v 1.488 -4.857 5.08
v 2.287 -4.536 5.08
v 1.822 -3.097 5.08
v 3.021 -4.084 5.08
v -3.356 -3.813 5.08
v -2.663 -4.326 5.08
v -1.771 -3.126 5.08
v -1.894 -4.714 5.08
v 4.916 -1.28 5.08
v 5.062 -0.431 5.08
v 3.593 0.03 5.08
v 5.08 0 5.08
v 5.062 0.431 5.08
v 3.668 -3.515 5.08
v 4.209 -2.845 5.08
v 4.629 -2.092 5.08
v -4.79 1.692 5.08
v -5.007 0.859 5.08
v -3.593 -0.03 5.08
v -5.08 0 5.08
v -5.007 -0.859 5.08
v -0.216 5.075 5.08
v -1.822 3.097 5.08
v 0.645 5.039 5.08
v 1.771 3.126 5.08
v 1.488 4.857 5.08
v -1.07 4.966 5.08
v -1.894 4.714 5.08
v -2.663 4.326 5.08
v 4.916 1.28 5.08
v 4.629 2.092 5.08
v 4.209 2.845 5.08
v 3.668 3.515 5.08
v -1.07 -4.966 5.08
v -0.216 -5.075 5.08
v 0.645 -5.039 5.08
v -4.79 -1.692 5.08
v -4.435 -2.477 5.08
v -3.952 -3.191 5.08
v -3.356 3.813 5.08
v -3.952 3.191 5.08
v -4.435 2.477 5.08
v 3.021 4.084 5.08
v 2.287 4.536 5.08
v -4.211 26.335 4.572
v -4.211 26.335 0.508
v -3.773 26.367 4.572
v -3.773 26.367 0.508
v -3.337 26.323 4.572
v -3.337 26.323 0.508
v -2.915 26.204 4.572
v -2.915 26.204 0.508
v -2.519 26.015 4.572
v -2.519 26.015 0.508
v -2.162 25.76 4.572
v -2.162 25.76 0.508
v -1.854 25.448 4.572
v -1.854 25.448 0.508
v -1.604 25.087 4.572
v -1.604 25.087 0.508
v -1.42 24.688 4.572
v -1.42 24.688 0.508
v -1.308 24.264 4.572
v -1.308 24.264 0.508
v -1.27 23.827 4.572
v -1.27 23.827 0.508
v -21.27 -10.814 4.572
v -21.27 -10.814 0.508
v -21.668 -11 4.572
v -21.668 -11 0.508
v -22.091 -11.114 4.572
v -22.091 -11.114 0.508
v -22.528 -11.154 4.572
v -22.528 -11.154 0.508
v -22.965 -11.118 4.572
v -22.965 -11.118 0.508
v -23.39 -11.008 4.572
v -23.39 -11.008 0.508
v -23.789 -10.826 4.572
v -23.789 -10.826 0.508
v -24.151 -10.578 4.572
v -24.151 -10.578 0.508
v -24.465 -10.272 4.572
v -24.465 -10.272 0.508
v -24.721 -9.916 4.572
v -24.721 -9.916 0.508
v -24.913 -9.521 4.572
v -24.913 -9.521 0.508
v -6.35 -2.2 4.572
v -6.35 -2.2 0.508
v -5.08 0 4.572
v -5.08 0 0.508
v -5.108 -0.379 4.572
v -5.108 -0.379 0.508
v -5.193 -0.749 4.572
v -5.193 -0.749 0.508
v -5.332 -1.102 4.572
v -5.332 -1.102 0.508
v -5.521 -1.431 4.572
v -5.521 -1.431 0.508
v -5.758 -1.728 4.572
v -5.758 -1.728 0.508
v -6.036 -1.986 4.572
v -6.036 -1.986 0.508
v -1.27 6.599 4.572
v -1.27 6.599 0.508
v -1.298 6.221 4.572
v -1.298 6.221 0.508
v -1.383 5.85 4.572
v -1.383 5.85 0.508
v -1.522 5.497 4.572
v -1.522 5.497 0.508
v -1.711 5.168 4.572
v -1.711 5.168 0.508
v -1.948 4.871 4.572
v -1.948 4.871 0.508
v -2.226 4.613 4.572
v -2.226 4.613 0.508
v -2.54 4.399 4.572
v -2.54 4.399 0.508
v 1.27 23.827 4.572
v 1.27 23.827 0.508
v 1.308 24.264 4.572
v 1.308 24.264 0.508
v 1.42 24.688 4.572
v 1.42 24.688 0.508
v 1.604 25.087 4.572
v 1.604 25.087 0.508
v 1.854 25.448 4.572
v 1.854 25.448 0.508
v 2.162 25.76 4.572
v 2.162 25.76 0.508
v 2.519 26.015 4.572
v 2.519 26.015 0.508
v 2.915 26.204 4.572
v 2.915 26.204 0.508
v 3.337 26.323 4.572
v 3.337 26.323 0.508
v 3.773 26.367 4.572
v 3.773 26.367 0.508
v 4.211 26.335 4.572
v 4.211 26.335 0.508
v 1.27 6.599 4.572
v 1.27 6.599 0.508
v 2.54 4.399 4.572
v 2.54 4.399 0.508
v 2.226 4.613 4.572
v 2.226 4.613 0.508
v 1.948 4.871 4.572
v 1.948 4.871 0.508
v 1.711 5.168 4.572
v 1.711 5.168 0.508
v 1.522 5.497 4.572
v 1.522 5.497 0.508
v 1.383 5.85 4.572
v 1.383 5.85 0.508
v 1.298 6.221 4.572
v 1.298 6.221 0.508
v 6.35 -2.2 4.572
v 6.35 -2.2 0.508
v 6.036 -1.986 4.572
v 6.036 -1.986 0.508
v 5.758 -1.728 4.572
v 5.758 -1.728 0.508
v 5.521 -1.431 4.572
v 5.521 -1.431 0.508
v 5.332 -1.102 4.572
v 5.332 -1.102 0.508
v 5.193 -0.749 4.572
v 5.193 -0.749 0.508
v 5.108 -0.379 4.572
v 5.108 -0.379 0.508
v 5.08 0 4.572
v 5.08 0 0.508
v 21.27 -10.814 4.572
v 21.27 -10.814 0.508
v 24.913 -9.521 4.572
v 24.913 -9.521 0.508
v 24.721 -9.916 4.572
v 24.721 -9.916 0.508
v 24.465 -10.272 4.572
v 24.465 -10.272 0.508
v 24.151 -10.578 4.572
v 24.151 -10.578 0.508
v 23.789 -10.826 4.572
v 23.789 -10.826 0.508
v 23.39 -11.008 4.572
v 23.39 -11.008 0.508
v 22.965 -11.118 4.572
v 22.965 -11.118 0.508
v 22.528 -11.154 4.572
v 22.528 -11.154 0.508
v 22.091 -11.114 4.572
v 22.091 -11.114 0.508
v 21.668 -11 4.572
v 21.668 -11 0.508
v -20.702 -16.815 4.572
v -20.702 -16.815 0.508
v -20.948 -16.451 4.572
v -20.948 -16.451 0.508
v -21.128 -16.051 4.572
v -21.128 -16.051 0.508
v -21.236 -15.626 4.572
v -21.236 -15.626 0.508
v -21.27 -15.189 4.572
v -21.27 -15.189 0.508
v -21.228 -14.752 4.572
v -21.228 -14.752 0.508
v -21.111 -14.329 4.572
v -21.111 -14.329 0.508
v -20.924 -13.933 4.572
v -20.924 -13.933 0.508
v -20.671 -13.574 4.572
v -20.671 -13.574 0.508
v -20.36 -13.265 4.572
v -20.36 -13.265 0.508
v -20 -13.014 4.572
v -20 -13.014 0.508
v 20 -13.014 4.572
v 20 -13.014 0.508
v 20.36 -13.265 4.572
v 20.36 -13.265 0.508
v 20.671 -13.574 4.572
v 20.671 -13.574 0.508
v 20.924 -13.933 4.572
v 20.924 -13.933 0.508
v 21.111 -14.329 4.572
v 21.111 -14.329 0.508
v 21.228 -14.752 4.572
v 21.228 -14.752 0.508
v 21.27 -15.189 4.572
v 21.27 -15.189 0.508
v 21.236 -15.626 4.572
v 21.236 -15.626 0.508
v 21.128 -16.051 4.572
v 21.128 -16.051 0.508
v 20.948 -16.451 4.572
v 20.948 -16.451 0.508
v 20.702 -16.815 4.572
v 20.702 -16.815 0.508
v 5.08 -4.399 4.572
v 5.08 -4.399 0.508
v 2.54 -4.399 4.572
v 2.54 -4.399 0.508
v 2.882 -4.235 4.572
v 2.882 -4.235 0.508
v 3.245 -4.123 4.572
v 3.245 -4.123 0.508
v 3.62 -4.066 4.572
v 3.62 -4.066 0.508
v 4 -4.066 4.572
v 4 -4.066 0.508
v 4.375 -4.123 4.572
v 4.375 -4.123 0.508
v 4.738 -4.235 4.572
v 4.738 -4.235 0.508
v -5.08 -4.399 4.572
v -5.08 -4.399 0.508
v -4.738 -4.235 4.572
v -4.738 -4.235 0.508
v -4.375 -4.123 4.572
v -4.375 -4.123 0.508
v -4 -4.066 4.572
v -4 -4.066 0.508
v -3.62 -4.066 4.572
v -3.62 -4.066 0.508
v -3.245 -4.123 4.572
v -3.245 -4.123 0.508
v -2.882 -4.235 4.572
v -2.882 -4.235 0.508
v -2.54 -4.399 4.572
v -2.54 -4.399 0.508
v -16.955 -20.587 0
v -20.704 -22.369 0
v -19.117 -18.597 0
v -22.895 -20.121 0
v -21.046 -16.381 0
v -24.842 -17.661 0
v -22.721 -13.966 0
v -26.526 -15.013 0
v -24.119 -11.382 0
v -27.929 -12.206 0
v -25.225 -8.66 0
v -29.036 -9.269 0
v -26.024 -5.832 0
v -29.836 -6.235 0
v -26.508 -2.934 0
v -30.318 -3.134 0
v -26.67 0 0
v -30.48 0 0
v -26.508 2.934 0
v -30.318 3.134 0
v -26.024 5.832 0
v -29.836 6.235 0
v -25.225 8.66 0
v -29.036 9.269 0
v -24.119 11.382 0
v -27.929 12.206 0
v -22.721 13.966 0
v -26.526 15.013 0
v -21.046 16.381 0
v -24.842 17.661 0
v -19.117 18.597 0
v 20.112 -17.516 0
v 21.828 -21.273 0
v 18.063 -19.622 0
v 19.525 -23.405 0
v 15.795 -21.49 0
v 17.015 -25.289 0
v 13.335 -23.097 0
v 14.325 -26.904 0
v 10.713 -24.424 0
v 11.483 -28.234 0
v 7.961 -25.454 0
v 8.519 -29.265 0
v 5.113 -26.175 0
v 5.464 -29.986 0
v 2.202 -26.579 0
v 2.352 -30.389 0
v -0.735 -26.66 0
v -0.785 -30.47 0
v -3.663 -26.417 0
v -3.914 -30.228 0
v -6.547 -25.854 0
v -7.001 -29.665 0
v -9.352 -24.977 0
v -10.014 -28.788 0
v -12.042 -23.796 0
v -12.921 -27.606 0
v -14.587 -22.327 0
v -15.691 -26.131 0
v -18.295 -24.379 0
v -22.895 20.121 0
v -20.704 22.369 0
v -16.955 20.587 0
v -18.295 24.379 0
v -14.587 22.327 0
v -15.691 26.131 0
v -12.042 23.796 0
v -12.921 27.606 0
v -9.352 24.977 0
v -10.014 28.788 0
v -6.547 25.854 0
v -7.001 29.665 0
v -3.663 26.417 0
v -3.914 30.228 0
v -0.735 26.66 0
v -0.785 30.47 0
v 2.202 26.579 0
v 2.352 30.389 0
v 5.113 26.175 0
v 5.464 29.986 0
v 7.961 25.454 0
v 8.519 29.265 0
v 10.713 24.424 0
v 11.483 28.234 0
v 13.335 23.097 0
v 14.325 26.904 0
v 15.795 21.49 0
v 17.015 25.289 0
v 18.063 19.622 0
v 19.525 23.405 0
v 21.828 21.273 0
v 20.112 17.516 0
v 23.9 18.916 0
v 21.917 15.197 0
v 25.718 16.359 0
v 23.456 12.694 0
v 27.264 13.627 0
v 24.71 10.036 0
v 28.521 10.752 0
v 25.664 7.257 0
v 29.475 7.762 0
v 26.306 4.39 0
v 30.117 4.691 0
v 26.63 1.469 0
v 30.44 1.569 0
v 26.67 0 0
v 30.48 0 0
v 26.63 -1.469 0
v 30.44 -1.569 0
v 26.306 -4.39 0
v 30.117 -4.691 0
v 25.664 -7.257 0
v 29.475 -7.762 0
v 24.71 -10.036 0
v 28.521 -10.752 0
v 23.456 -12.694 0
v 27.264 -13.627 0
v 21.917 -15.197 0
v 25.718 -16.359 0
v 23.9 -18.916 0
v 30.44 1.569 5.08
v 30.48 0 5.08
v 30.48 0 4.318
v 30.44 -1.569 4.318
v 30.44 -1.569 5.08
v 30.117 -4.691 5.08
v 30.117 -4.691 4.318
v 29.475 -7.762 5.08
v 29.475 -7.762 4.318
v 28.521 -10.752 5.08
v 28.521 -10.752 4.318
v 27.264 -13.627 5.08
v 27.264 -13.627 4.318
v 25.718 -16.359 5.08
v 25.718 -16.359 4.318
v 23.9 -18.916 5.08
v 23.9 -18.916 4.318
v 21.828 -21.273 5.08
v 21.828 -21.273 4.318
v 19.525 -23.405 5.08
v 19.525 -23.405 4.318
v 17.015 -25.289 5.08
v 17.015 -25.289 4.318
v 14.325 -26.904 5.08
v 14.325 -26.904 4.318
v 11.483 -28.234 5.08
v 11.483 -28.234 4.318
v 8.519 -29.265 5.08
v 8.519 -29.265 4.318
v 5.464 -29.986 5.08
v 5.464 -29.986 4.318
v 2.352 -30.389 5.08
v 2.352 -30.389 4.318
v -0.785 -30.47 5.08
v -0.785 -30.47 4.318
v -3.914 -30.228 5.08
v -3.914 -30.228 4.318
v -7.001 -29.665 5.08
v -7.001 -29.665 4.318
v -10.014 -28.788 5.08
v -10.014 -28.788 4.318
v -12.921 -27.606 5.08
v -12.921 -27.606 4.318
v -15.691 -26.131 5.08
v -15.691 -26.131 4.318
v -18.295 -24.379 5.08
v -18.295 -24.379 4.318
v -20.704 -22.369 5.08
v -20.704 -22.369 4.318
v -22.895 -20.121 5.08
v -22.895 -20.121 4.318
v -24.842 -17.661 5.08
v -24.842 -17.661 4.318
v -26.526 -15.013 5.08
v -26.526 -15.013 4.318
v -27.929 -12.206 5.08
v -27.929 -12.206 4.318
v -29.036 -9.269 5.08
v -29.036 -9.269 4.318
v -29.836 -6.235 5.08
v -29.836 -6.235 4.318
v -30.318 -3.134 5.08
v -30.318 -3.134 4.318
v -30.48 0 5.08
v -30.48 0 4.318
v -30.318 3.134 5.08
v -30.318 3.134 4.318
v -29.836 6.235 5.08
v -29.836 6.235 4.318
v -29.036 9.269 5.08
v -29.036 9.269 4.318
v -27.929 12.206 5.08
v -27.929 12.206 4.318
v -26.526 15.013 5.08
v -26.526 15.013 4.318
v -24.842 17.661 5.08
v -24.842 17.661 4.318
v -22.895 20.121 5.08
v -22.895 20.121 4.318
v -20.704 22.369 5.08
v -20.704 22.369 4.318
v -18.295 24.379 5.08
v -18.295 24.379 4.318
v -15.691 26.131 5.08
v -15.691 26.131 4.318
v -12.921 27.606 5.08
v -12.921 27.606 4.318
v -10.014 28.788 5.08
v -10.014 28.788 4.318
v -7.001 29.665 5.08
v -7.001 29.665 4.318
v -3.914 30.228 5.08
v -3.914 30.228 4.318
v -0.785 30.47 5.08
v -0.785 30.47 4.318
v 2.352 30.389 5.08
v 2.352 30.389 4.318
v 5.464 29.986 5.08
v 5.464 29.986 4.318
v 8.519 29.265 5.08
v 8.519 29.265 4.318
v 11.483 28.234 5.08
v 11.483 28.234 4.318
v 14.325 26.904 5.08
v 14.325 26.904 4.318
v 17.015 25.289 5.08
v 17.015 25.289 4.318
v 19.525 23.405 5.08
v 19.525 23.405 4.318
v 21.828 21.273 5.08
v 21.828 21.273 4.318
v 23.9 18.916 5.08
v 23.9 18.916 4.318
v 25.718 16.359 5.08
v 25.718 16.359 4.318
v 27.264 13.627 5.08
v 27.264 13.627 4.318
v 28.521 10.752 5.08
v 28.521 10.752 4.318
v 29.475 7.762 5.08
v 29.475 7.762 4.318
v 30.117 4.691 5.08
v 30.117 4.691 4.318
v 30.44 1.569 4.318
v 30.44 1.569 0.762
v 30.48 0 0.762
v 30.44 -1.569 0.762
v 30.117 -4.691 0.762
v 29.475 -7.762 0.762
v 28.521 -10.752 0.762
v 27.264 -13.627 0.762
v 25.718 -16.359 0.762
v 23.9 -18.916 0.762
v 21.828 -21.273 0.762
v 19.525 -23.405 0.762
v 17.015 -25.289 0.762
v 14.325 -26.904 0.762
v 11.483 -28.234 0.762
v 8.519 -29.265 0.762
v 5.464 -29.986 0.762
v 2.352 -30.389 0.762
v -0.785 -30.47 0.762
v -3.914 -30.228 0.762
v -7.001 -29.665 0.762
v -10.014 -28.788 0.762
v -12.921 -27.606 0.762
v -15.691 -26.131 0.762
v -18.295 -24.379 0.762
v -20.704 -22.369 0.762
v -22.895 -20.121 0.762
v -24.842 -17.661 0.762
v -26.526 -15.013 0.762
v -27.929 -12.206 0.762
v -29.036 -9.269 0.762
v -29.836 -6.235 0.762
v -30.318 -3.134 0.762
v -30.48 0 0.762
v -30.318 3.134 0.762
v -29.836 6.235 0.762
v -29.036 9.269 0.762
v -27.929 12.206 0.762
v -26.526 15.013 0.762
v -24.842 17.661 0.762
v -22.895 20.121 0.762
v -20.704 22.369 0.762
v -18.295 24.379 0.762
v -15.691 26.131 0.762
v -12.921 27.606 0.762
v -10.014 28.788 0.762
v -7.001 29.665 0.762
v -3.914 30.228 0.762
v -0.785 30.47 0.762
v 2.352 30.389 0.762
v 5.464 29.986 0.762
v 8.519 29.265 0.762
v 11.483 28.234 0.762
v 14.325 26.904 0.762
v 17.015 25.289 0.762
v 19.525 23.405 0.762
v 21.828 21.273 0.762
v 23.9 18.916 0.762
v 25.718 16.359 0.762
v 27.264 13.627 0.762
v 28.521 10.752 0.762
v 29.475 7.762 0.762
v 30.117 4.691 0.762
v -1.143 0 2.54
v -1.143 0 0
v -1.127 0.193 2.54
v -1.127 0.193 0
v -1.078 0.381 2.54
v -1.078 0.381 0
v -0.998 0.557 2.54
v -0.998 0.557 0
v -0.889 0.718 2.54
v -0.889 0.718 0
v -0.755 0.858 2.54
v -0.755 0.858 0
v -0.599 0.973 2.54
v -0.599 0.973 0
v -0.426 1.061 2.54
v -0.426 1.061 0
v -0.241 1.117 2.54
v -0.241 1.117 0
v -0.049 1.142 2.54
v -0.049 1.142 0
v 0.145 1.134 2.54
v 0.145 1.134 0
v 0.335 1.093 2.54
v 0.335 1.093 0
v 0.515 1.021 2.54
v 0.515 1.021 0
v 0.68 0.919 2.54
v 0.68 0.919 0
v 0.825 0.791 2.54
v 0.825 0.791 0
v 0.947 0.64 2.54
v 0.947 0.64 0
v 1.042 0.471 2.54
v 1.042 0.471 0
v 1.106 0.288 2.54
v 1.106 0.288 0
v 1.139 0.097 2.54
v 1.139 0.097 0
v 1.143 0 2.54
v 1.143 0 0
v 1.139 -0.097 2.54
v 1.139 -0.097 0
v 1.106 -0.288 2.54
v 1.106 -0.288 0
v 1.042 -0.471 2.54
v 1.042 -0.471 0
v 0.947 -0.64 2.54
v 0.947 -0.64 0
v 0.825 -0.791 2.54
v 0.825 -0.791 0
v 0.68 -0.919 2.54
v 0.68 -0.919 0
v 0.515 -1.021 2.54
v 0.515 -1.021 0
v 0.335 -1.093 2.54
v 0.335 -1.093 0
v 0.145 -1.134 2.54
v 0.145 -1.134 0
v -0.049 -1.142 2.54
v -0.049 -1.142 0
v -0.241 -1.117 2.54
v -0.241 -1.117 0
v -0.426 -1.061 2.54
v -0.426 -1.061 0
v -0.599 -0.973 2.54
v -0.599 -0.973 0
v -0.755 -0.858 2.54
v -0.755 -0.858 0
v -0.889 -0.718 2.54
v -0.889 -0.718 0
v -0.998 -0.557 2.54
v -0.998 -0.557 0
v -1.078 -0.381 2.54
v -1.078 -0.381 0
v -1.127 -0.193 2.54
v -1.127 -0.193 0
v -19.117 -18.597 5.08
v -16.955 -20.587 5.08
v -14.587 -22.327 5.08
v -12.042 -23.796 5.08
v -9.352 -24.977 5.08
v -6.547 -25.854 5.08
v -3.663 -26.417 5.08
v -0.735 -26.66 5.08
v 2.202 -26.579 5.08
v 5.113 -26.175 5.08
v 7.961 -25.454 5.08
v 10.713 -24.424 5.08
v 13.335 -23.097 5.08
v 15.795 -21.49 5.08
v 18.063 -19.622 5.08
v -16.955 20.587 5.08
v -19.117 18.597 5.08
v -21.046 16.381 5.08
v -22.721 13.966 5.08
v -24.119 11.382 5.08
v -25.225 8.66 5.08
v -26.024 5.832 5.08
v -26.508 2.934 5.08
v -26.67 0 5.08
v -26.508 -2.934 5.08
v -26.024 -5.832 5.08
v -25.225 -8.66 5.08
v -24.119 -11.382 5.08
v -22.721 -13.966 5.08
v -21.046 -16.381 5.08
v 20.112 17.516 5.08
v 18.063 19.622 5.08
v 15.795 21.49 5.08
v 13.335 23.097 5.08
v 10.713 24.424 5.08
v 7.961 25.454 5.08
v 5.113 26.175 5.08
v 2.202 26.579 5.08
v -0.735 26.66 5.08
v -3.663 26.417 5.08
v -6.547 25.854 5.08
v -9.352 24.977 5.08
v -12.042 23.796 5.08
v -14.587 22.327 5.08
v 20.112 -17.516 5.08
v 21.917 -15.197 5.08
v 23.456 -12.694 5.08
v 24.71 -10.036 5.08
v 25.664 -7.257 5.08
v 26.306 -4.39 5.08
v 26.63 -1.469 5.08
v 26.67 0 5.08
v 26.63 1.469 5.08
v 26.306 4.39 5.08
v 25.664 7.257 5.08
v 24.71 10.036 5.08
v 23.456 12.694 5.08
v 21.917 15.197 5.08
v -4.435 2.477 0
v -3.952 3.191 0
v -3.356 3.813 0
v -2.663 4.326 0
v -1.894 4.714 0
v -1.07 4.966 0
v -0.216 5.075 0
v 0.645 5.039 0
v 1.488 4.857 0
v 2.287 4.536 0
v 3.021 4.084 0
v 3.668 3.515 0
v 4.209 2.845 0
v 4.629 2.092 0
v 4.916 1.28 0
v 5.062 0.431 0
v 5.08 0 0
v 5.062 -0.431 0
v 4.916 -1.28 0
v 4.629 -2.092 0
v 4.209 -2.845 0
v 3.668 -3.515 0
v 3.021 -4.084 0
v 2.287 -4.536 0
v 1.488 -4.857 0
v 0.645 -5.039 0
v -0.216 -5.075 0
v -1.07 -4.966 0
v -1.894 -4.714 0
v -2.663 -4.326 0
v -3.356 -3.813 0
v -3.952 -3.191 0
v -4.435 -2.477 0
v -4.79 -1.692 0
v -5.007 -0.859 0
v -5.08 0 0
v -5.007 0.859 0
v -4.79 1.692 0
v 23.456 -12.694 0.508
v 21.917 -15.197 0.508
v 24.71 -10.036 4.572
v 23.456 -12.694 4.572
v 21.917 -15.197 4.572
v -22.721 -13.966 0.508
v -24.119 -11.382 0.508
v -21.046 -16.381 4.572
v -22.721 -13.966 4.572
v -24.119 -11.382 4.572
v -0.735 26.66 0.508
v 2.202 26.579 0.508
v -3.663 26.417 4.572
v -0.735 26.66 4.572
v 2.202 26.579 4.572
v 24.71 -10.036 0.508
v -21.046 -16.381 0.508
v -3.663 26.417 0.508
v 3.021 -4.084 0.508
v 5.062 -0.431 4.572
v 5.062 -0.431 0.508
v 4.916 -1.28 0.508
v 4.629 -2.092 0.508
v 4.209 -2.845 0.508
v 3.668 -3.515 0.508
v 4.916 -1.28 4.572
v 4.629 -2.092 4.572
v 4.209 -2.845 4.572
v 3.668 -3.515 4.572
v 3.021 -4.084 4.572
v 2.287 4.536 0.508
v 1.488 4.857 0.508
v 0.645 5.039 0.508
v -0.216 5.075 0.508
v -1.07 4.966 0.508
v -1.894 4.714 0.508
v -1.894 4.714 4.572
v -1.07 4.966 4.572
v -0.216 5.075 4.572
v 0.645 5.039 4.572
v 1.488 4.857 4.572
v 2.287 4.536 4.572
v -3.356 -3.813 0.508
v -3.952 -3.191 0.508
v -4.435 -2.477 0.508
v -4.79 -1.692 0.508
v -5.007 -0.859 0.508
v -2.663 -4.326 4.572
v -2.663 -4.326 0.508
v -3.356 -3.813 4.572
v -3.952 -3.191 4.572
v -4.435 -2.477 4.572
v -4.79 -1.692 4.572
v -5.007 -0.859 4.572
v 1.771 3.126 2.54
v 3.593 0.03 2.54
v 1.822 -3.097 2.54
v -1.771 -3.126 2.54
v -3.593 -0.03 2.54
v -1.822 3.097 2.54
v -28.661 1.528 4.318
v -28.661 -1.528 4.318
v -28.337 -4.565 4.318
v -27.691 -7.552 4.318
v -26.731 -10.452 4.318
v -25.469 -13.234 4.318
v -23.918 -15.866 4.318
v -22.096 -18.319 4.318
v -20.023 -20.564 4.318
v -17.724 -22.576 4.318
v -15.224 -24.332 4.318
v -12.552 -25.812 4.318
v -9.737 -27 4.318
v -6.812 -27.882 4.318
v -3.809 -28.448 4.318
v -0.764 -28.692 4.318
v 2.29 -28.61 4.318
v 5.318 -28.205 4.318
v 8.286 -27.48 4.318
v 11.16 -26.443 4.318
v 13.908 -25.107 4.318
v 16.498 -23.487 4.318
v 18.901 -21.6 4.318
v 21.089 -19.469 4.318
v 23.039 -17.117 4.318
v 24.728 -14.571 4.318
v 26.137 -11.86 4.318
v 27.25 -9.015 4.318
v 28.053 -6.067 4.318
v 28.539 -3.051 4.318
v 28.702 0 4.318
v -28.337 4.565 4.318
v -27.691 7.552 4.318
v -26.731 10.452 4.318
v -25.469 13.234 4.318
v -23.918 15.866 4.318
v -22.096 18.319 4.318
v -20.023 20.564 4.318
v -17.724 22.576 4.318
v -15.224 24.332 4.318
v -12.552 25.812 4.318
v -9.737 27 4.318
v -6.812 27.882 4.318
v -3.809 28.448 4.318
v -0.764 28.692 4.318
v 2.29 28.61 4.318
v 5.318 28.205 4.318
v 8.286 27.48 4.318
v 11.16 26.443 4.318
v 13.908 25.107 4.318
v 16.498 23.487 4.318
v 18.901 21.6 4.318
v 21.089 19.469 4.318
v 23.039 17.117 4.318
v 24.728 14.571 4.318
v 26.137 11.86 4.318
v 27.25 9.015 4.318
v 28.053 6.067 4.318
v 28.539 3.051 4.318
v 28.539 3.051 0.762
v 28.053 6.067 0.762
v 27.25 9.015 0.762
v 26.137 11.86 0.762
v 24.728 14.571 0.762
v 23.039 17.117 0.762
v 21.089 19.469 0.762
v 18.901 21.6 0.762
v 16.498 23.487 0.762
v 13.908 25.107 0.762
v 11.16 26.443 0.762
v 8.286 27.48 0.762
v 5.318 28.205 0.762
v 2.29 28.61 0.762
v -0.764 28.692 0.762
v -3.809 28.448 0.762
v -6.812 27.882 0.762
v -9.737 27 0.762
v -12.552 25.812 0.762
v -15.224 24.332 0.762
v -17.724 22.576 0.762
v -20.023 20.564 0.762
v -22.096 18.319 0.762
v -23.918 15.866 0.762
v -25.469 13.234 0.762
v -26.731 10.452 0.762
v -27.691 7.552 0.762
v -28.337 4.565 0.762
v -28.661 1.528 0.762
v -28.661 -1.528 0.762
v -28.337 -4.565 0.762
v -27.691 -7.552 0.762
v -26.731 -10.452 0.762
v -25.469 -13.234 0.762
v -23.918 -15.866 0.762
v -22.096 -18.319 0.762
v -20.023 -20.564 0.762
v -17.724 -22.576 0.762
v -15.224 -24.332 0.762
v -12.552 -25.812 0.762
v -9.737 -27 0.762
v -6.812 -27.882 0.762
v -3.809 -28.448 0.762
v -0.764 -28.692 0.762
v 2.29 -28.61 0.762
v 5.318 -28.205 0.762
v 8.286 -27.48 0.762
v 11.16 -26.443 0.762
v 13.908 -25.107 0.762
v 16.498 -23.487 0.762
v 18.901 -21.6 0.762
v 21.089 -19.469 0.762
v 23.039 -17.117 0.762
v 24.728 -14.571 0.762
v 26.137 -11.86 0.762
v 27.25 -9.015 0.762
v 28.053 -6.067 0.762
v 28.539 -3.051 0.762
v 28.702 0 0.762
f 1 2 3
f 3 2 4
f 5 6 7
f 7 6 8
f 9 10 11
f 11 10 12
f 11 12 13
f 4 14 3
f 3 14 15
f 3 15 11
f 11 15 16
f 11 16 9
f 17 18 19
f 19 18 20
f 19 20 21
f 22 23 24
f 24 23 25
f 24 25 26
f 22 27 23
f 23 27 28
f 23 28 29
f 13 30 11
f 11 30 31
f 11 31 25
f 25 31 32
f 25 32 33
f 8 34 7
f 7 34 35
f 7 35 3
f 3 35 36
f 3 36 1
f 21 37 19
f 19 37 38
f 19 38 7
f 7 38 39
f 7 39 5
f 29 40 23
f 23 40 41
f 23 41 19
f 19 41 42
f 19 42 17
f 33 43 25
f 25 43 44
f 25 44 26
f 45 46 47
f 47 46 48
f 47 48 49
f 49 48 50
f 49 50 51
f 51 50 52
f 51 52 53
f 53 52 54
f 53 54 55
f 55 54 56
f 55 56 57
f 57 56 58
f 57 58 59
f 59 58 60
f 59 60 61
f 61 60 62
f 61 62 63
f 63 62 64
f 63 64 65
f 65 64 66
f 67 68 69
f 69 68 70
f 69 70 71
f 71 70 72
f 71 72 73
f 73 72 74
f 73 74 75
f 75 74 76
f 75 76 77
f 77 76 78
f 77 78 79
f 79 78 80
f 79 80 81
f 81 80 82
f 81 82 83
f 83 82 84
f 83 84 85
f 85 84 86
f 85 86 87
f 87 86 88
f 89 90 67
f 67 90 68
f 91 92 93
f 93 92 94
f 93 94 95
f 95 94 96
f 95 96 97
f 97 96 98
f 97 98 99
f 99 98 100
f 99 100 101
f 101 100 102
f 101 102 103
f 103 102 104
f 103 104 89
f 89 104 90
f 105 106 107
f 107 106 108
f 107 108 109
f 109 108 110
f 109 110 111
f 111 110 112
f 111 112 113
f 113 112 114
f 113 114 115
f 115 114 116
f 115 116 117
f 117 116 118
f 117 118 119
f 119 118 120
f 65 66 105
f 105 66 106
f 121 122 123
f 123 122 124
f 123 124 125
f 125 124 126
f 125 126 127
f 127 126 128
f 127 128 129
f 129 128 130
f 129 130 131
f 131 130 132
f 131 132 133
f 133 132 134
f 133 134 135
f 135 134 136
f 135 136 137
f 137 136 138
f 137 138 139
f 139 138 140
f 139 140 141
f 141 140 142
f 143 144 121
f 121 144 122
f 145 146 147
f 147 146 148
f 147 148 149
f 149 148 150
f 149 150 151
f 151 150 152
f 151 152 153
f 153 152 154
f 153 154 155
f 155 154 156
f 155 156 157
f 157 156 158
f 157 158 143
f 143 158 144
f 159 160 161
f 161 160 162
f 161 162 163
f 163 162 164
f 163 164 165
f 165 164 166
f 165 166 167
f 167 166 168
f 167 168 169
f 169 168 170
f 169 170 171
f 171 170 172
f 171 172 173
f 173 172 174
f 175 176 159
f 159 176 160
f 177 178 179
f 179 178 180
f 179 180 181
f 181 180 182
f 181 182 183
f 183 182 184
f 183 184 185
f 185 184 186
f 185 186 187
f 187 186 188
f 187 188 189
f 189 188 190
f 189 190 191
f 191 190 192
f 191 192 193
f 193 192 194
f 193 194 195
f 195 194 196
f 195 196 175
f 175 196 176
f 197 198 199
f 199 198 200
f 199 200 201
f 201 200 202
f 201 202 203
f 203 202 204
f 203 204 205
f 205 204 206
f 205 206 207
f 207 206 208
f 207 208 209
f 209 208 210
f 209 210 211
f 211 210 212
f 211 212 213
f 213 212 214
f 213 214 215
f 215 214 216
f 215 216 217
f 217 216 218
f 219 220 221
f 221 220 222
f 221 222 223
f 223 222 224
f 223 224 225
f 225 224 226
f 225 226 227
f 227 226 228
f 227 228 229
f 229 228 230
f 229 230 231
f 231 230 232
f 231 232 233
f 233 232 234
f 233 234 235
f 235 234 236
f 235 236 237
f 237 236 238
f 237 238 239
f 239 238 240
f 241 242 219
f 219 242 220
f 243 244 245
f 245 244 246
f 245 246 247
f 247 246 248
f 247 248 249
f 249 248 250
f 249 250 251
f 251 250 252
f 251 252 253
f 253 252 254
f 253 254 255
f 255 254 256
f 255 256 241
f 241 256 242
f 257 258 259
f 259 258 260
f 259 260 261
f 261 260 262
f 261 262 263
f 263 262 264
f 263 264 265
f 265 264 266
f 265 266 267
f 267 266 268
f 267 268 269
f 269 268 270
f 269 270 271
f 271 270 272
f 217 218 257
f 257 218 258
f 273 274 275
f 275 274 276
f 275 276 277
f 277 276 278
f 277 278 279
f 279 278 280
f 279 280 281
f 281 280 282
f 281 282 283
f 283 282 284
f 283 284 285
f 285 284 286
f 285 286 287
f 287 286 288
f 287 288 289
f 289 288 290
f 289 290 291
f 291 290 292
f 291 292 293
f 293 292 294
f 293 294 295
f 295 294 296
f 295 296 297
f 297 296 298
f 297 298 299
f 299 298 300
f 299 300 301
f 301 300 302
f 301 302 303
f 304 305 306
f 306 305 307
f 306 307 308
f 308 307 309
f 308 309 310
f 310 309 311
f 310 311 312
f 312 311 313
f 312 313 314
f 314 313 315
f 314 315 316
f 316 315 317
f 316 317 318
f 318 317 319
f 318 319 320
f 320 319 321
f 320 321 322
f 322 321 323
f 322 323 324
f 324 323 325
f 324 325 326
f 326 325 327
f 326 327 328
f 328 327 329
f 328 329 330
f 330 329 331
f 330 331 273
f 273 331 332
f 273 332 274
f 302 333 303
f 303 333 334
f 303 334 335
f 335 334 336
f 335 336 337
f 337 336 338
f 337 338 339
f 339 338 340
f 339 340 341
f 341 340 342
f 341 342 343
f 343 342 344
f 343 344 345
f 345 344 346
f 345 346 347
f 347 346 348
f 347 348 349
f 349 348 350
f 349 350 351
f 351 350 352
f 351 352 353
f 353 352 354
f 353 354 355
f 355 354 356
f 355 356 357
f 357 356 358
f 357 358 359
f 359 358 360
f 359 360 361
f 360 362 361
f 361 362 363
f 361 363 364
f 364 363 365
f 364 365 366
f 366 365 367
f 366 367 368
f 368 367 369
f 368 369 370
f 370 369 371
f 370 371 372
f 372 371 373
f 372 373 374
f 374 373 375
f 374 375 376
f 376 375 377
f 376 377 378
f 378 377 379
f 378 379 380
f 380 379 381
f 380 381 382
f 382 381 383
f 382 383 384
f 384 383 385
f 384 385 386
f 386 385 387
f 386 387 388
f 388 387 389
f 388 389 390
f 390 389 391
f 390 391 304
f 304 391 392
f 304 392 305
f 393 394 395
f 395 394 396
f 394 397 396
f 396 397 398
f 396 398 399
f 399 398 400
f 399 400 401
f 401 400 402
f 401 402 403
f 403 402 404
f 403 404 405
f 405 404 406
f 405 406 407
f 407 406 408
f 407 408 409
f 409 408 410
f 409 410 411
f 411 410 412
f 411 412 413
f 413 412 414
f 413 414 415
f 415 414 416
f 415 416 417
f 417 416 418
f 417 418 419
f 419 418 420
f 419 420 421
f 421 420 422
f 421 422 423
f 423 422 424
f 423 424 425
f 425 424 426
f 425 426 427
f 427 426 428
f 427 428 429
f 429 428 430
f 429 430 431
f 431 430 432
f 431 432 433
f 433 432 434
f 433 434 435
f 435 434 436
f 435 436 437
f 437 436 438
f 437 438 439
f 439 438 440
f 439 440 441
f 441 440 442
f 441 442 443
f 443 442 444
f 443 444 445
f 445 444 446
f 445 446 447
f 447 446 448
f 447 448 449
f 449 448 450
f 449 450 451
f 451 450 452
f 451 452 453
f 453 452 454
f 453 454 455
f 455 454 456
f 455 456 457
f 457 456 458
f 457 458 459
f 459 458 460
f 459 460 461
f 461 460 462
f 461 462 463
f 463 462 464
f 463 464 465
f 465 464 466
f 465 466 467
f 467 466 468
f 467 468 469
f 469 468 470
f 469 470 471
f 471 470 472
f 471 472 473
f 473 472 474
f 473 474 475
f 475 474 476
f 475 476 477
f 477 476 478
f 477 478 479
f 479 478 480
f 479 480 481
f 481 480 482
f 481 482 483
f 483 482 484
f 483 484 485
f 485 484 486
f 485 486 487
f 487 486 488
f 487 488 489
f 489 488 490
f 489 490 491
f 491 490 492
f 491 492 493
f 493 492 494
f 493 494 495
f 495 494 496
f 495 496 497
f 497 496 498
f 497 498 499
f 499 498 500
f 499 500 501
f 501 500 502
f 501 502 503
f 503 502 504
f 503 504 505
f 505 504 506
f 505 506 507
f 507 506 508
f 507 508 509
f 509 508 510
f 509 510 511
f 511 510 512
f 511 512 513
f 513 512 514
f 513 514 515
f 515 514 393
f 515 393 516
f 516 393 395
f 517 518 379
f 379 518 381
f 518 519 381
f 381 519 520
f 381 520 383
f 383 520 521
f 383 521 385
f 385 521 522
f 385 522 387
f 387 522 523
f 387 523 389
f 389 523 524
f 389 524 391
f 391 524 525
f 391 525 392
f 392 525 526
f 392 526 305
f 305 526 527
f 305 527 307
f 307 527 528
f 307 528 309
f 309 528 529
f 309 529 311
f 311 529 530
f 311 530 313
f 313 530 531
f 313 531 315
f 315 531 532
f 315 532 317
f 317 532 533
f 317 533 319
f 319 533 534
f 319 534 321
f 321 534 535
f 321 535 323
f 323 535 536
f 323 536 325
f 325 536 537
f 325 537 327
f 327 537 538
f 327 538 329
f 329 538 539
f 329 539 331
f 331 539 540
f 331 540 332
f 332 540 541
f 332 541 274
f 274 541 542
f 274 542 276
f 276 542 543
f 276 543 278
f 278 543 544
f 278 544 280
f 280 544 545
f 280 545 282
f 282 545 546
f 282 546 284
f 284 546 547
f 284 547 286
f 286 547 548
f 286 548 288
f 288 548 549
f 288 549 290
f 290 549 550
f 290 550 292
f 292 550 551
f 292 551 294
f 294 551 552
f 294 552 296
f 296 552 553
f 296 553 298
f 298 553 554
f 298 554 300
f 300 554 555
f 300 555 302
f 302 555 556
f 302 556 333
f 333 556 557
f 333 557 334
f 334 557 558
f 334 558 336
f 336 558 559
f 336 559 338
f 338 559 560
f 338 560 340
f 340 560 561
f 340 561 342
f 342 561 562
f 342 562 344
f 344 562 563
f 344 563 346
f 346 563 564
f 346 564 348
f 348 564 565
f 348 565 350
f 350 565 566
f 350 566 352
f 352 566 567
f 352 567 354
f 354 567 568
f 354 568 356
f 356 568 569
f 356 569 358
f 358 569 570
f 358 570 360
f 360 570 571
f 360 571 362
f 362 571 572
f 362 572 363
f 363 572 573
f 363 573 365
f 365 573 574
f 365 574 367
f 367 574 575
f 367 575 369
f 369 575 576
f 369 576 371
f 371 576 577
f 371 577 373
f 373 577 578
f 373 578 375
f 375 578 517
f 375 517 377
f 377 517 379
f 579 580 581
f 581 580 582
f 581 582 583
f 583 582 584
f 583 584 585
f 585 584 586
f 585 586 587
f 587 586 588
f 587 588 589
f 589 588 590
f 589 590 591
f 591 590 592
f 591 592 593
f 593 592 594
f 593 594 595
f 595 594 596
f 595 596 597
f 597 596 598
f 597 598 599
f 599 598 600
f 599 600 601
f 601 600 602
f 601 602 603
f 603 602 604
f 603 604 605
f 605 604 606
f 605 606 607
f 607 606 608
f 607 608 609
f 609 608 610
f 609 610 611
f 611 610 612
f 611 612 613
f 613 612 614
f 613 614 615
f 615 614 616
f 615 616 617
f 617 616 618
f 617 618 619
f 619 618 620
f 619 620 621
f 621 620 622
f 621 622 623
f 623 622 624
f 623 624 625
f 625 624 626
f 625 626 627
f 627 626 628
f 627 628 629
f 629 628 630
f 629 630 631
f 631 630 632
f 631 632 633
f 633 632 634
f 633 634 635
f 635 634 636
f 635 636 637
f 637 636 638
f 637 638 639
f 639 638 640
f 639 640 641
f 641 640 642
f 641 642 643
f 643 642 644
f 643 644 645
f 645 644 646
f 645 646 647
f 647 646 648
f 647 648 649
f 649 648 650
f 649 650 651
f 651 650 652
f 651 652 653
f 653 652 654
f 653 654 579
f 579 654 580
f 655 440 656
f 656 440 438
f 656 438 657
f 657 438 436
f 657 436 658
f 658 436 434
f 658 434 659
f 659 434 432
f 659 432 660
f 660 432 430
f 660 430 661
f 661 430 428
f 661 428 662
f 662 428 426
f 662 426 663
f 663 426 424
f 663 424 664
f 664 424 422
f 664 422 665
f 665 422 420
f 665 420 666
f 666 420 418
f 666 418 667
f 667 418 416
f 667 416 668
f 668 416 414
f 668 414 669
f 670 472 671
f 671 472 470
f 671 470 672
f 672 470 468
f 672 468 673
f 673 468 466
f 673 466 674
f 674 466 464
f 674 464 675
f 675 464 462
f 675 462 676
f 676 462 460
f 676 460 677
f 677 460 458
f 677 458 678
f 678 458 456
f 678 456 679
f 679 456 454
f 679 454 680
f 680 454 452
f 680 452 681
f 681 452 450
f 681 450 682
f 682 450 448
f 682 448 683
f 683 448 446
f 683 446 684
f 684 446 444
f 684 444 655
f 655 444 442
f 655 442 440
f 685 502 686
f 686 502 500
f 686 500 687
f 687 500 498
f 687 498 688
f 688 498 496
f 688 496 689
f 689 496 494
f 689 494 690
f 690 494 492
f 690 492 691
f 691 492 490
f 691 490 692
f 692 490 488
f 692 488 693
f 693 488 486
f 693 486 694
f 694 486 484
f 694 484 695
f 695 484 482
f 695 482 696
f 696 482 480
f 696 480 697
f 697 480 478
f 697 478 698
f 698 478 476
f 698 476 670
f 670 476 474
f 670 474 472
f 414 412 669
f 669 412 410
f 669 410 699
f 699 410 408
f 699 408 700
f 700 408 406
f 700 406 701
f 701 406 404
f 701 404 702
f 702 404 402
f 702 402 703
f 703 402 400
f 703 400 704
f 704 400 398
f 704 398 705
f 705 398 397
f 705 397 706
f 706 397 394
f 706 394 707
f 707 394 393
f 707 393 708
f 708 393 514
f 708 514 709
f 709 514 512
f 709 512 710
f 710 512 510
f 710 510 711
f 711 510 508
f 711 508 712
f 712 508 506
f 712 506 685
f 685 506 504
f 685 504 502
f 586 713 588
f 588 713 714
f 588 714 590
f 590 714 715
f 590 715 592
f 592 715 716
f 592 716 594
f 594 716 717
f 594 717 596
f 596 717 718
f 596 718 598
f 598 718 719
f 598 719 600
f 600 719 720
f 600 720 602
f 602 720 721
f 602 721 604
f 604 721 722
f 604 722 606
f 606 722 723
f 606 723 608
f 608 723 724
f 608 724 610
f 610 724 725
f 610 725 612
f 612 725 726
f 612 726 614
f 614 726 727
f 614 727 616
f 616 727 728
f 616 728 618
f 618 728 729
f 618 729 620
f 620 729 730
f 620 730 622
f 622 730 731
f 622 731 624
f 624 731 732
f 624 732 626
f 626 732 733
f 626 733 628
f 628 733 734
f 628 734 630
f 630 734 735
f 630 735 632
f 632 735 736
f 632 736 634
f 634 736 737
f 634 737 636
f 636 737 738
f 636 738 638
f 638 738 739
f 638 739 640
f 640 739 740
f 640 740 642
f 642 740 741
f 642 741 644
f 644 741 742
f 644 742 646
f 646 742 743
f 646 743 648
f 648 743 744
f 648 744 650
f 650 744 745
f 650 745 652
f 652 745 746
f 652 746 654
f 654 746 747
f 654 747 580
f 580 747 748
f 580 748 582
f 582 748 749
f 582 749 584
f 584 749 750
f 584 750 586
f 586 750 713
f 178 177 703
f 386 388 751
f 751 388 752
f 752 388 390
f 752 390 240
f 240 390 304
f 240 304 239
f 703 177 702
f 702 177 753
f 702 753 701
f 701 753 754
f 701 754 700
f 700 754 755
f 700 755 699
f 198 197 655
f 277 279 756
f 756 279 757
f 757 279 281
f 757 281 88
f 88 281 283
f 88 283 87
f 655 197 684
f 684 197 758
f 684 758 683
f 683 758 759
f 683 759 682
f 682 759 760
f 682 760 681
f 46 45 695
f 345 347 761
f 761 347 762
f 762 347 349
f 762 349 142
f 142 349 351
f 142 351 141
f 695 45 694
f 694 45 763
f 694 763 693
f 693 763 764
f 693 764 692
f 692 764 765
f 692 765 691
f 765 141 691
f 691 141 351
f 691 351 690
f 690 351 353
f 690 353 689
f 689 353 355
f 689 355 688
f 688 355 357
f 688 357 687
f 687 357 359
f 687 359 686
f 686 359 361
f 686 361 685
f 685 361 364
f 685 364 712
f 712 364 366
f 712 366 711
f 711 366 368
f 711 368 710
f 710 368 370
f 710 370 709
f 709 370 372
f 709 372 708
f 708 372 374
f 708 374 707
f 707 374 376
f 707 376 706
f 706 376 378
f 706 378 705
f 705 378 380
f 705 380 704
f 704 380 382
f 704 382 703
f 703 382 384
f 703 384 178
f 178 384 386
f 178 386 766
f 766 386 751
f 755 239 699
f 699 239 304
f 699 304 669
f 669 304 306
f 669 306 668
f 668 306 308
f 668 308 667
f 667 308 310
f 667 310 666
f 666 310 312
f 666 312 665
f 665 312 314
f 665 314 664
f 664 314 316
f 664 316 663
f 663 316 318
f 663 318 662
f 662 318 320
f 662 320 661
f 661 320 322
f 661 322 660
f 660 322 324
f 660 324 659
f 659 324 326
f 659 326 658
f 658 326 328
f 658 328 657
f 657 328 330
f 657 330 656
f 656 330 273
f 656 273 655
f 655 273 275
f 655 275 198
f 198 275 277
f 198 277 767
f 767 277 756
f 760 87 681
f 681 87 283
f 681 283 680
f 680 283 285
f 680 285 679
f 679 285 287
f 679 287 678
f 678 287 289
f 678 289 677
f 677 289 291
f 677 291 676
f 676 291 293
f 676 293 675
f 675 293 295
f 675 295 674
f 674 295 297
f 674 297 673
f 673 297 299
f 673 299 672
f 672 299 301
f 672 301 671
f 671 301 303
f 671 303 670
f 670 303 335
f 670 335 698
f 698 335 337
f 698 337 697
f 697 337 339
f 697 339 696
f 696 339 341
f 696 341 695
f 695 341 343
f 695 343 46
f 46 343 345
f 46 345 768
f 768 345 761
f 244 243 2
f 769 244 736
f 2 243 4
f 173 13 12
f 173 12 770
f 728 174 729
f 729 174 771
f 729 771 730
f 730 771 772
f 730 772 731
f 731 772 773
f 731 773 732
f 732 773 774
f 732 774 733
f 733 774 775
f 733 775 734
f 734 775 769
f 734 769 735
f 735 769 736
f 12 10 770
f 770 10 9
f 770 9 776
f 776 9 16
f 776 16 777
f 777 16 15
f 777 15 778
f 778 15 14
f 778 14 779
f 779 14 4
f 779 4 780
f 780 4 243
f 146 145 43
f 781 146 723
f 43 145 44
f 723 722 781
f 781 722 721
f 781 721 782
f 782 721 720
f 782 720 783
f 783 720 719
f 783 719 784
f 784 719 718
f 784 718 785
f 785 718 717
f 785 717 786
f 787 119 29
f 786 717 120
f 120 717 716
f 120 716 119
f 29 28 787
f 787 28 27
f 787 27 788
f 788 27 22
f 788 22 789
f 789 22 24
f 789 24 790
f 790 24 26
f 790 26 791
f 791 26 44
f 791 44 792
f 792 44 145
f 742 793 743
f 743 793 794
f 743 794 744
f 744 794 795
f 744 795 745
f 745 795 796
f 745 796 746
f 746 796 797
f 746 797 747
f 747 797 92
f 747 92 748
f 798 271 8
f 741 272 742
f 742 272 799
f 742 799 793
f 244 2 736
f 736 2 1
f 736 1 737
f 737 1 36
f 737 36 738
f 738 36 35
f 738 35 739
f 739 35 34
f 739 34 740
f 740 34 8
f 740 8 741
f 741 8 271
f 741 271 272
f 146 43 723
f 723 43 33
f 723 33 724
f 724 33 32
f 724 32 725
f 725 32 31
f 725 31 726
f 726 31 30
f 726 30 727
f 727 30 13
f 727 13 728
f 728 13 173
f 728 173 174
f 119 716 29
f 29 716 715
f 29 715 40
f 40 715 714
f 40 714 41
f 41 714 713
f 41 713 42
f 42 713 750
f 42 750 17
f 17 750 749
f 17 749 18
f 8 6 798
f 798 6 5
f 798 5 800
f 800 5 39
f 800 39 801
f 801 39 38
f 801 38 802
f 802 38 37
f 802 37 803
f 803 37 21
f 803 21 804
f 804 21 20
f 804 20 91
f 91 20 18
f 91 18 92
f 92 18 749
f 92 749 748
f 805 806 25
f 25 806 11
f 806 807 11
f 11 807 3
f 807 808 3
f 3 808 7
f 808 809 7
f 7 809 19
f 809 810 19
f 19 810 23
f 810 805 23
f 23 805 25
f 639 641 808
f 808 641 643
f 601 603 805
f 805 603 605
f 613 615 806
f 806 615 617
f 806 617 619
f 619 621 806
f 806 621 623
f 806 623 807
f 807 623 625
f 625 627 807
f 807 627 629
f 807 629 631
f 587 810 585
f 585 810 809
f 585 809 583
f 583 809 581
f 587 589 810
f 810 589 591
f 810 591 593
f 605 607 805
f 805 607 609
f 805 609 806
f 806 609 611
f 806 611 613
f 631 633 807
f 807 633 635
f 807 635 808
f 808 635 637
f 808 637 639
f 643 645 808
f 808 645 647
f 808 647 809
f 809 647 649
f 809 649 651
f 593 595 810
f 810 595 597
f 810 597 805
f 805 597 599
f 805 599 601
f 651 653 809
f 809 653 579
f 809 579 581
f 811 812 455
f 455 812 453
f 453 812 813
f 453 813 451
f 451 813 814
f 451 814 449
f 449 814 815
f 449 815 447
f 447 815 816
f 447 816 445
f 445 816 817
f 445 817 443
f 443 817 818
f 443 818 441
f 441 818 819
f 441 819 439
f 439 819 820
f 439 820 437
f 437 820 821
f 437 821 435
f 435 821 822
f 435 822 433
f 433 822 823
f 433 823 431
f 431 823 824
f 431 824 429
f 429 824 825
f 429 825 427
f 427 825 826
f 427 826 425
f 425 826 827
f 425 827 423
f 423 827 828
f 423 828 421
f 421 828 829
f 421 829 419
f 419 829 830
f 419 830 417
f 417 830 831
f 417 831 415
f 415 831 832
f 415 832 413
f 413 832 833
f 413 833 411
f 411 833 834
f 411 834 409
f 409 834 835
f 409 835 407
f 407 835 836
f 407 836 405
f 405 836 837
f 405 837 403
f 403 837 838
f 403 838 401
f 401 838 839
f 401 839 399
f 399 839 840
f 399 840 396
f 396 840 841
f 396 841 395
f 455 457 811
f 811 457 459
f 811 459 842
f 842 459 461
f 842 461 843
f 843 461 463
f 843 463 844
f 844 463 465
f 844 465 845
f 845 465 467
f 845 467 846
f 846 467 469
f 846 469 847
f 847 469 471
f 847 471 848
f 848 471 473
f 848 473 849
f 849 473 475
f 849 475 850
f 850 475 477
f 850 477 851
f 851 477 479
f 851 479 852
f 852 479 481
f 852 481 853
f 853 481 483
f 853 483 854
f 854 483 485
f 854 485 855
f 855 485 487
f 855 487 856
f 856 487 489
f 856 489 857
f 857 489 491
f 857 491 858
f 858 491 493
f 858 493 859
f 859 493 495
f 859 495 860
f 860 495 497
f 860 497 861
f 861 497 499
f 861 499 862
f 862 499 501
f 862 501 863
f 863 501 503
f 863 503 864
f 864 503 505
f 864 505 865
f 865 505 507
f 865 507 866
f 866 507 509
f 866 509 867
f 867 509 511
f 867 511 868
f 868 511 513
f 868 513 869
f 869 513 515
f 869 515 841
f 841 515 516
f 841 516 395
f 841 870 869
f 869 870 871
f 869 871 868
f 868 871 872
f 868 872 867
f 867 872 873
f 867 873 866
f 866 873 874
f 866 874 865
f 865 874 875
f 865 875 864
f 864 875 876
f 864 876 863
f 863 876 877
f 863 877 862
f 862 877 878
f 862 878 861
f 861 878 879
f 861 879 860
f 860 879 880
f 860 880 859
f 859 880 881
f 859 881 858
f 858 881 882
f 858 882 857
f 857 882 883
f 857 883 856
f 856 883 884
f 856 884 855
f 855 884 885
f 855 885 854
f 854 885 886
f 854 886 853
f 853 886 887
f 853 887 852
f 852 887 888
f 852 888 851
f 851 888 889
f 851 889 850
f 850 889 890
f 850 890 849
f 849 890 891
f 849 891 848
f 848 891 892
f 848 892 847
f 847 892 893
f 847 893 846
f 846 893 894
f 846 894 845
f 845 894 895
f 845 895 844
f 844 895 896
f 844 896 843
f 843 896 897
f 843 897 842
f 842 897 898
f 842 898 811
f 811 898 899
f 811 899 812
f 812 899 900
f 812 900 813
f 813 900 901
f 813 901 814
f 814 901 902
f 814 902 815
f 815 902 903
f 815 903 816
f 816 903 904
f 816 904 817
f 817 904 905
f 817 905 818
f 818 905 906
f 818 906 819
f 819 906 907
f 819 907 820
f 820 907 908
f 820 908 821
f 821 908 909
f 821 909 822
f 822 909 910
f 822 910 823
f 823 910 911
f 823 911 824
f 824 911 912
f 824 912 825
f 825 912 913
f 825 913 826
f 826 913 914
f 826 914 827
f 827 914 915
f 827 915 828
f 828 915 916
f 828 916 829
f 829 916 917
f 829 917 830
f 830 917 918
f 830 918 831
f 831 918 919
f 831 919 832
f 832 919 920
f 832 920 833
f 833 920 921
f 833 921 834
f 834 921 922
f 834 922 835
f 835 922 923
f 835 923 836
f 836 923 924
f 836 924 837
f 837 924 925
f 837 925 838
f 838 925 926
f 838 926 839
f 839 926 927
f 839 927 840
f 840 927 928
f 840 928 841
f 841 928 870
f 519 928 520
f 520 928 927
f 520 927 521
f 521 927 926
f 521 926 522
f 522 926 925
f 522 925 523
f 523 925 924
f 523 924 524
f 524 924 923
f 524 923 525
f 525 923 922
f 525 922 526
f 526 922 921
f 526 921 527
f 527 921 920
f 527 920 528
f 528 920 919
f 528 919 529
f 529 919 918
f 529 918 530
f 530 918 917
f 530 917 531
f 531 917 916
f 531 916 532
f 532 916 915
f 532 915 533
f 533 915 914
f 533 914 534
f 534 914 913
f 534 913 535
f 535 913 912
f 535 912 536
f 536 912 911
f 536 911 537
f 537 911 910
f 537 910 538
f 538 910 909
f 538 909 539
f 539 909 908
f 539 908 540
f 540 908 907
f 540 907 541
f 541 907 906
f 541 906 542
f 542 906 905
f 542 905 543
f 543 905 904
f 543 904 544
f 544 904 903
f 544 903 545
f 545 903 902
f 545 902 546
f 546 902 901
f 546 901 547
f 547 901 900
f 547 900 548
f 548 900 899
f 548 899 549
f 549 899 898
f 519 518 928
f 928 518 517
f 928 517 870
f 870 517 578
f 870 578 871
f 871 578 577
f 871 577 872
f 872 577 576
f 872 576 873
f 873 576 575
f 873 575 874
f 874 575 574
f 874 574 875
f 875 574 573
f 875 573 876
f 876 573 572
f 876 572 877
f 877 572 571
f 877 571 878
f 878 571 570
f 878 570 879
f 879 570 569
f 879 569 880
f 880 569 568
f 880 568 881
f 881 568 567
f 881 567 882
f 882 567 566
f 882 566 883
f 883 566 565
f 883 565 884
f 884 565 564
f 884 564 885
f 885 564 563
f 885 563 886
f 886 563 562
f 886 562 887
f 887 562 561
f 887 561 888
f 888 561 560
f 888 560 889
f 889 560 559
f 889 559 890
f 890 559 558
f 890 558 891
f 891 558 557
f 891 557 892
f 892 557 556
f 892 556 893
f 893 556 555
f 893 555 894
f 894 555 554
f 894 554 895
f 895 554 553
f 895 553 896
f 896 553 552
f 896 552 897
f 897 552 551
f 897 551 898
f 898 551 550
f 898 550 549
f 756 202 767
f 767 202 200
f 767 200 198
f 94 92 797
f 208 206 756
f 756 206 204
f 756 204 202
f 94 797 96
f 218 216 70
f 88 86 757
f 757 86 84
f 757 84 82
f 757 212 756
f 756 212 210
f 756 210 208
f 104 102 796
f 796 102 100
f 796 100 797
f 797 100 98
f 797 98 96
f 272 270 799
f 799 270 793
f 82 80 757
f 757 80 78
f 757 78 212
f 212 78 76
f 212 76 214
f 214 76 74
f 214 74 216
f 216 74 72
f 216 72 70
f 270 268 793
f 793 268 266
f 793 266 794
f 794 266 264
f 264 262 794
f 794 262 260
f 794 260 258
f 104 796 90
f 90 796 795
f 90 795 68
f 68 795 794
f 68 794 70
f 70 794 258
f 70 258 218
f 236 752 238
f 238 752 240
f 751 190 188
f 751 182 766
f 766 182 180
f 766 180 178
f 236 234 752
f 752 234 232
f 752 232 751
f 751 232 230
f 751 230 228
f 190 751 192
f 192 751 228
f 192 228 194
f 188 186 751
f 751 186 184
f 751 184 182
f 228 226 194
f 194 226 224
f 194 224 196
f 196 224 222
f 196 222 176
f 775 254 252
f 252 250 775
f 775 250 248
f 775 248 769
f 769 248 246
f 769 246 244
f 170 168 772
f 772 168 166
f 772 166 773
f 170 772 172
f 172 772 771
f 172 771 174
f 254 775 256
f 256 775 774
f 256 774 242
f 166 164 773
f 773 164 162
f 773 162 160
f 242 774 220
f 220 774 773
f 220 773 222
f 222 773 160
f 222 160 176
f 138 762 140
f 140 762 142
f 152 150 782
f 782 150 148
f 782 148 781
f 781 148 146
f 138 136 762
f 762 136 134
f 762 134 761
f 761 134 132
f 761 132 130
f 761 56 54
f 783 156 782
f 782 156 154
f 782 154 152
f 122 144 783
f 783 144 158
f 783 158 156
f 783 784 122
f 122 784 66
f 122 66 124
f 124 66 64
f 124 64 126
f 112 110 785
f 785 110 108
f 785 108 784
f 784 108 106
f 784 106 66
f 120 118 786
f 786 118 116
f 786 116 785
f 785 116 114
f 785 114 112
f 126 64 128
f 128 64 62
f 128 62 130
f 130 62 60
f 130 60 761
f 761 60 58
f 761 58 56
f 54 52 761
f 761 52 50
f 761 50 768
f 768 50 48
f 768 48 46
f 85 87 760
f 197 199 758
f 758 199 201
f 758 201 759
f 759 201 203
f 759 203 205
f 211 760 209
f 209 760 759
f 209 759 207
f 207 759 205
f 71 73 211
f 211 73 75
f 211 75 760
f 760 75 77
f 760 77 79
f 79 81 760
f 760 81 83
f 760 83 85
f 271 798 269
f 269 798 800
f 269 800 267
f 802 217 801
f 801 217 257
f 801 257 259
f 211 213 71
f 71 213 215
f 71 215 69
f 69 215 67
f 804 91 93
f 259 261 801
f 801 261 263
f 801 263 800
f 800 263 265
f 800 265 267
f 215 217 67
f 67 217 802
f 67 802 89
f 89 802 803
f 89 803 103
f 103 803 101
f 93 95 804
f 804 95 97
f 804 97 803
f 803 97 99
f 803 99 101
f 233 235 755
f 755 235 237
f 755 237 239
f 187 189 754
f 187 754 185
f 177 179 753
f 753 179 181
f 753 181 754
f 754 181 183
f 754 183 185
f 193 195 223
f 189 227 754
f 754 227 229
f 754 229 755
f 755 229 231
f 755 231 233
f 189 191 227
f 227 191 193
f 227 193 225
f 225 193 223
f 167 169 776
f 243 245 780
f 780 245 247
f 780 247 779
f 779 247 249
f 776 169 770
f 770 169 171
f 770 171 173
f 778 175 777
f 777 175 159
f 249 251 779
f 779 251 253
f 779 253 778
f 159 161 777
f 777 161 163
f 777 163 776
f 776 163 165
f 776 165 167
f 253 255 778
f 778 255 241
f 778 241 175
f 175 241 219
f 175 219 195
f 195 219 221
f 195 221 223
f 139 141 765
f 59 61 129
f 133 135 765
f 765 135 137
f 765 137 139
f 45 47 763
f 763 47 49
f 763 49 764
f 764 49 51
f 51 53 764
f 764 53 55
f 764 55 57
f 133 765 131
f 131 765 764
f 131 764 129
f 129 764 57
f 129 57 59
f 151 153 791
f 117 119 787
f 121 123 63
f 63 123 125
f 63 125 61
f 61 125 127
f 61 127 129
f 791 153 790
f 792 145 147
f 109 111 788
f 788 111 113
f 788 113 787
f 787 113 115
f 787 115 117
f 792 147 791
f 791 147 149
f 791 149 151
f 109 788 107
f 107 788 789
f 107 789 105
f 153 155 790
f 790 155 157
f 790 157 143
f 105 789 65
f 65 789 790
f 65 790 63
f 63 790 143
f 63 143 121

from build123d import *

# Parameters (mm, degrees)
SKETCH1_R           = 30.48
SKETCH1_R_2         = 1.143
BOSS_EXTRUDE1_DEPTH = 5.08
CUT_EXTRUDE1_DEPTH  = 2.54
SKETCH3_W           = 3.556
SKETCH3_H           = 1.778
SKETCH6_R           = 26.67
SKETCH6_R_2         = 5.08
CUT_EXTRUDE2_DEPTH  = 0.508
SKETCH8_R           = 26.67
SKETCH8_R_2         = 5.08
CUT_EXTRUDE3_DEPTH  = 0.508


with BuildPart() as part:
    # Sketch1 → Boss-Extrude1 (new body)
    with BuildSketch(Plane.XY):
        Circle(SKETCH1_R)
        Circle(SKETCH1_R_2, mode=Mode.SUBTRACT)
        with BuildLine():
            Line((-1.27, 23.82731206), (-1.27, 6.599113577))
            ThreePointArc((-1.27, 6.599113577), (-1.610295474, 5.329113577), (-2.54, 4.399409051))
            ThreePointArc((-2.54, 4.399409051), (-4.399409051, 2.54), (-5.08, 0))
            ThreePointArc((-5.08, 0), (-5.420295474, -1.27), (-6.35, -2.199704526))
            Line((-6.35, -2.199704526), (-21.270057548, -10.813803767))
            ThreePointArc((-21.270057548, -10.813803767), (-23.389696909, -11.007781124), (-24.912695184, -9.52084653))
            ThreePointArc((-24.912695184, -9.52084653), (-23.096897519, 13.335), (-4.211052632, 26.335450171))
            ThreePointArc((-4.211052632, 26.335450171), (-2.161830361, 25.759962272), (-1.27, 23.82731206))
        make_face(mode=Mode.SUBTRACT)
        with BuildLine():
            Line((1.27, 23.82731206), (1.27, 6.599113577))
            ThreePointArc((1.27, 6.599113577), (1.610295474, 5.329113577), (2.54, 4.399409051))
            ThreePointArc((2.54, 4.399409051), (4.399409051, 2.54), (5.08, 0))
            ThreePointArc((5.08, 0), (5.420295474, -1.27), (6.35, -2.199704526))
            Line((6.35, -2.199704526), (21.270057548, -10.813803767))
            ThreePointArc((21.270057548, -10.813803767), (23.389696909, -11.007781124), (24.912695184, -9.52084653))
            ThreePointArc((24.912695184, -9.52084653), (23.096897519, 13.335), (4.211052632, 26.335450171))
            ThreePointArc((4.211052632, 26.335450171), (2.161830361, 25.759962272), (1.27, 23.82731206))
        make_face(mode=Mode.SUBTRACT)
        with BuildLine():
            Line((20.000057548, -13.013508293), (5.08, -4.399409051))
            ThreePointArc((5.08, -4.399409051), (3.81, -4.059113577), (2.54, -4.399409051))
            ThreePointArc((2.54, -4.399409051), (0, -5.08), (-2.54, -4.399409051))
            ThreePointArc((-2.54, -4.399409051), (-3.81, -4.059113577), (-5.08, -4.399409051))
            Line((-5.08, -4.399409051), (-20.000057548, -13.013508293))
            ThreePointArc((-20.000057548, -13.013508293), (-21.227866547, -14.752181148), (-20.701642553, -16.814603641))
            ThreePointArc((-20.701642553, -16.814603641), (0, -26.67), (20.701642553, -16.814603641))
            ThreePointArc((20.701642553, -16.814603641), (21.227866547, -14.752181148), (20.000057548, -13.013508293))
        make_face(mode=Mode.SUBTRACT)
    extrude(amount=BOSS_EXTRUDE1_DEPTH)

    # Sketch2 → Cut-Extrude1 (cut)
    with BuildSketch(Plane.XY.offset(5.08)):
        Polygon((1.770622484, 3.126255324), (-1.822105287, 3.096531714), (-3.592727772, -0.02972361), (-1.770622484, -3.126255324), (1.822105287, -3.096531714), (3.592727772, 0.02972361), align=None)
    extrude(amount=-CUT_EXTRUDE1_DEPTH, mode=Mode.SUBTRACT)

    # Sketch3 → Cut-Revolve1 (revolve, cut)
    with BuildSketch(Plane(origin=(0, 0, 0), x_dir=(0, 0, -1), z_dir=(1, 0, 0))):
        with Locations((-2.54, 29.591)):
            Rectangle(SKETCH3_W, SKETCH3_H)
    revolve(axis=Axis((0, 0, 7.917922269), (0, 0, -1)), mode=Mode.SUBTRACT)

    # Sketch6 → Cut-Extrude2 (cut)
    with BuildSketch(Plane.XY):
        Circle(SKETCH6_R)
        Circle(SKETCH6_R_2, mode=Mode.SUBTRACT)
    extrude(amount=CUT_EXTRUDE2_DEPTH, mode=Mode.SUBTRACT)

    # Sketch8 → Cut-Extrude3 (cut)
    with BuildSketch(Plane.XY.offset(5.08)):
        Circle(SKETCH8_R)
        Circle(SKETCH8_R_2, mode=Mode.SUBTRACT)
    extrude(amount=-CUT_EXTRUDE3_DEPTH, mode=Mode.SUBTRACT)


solid = part.part
